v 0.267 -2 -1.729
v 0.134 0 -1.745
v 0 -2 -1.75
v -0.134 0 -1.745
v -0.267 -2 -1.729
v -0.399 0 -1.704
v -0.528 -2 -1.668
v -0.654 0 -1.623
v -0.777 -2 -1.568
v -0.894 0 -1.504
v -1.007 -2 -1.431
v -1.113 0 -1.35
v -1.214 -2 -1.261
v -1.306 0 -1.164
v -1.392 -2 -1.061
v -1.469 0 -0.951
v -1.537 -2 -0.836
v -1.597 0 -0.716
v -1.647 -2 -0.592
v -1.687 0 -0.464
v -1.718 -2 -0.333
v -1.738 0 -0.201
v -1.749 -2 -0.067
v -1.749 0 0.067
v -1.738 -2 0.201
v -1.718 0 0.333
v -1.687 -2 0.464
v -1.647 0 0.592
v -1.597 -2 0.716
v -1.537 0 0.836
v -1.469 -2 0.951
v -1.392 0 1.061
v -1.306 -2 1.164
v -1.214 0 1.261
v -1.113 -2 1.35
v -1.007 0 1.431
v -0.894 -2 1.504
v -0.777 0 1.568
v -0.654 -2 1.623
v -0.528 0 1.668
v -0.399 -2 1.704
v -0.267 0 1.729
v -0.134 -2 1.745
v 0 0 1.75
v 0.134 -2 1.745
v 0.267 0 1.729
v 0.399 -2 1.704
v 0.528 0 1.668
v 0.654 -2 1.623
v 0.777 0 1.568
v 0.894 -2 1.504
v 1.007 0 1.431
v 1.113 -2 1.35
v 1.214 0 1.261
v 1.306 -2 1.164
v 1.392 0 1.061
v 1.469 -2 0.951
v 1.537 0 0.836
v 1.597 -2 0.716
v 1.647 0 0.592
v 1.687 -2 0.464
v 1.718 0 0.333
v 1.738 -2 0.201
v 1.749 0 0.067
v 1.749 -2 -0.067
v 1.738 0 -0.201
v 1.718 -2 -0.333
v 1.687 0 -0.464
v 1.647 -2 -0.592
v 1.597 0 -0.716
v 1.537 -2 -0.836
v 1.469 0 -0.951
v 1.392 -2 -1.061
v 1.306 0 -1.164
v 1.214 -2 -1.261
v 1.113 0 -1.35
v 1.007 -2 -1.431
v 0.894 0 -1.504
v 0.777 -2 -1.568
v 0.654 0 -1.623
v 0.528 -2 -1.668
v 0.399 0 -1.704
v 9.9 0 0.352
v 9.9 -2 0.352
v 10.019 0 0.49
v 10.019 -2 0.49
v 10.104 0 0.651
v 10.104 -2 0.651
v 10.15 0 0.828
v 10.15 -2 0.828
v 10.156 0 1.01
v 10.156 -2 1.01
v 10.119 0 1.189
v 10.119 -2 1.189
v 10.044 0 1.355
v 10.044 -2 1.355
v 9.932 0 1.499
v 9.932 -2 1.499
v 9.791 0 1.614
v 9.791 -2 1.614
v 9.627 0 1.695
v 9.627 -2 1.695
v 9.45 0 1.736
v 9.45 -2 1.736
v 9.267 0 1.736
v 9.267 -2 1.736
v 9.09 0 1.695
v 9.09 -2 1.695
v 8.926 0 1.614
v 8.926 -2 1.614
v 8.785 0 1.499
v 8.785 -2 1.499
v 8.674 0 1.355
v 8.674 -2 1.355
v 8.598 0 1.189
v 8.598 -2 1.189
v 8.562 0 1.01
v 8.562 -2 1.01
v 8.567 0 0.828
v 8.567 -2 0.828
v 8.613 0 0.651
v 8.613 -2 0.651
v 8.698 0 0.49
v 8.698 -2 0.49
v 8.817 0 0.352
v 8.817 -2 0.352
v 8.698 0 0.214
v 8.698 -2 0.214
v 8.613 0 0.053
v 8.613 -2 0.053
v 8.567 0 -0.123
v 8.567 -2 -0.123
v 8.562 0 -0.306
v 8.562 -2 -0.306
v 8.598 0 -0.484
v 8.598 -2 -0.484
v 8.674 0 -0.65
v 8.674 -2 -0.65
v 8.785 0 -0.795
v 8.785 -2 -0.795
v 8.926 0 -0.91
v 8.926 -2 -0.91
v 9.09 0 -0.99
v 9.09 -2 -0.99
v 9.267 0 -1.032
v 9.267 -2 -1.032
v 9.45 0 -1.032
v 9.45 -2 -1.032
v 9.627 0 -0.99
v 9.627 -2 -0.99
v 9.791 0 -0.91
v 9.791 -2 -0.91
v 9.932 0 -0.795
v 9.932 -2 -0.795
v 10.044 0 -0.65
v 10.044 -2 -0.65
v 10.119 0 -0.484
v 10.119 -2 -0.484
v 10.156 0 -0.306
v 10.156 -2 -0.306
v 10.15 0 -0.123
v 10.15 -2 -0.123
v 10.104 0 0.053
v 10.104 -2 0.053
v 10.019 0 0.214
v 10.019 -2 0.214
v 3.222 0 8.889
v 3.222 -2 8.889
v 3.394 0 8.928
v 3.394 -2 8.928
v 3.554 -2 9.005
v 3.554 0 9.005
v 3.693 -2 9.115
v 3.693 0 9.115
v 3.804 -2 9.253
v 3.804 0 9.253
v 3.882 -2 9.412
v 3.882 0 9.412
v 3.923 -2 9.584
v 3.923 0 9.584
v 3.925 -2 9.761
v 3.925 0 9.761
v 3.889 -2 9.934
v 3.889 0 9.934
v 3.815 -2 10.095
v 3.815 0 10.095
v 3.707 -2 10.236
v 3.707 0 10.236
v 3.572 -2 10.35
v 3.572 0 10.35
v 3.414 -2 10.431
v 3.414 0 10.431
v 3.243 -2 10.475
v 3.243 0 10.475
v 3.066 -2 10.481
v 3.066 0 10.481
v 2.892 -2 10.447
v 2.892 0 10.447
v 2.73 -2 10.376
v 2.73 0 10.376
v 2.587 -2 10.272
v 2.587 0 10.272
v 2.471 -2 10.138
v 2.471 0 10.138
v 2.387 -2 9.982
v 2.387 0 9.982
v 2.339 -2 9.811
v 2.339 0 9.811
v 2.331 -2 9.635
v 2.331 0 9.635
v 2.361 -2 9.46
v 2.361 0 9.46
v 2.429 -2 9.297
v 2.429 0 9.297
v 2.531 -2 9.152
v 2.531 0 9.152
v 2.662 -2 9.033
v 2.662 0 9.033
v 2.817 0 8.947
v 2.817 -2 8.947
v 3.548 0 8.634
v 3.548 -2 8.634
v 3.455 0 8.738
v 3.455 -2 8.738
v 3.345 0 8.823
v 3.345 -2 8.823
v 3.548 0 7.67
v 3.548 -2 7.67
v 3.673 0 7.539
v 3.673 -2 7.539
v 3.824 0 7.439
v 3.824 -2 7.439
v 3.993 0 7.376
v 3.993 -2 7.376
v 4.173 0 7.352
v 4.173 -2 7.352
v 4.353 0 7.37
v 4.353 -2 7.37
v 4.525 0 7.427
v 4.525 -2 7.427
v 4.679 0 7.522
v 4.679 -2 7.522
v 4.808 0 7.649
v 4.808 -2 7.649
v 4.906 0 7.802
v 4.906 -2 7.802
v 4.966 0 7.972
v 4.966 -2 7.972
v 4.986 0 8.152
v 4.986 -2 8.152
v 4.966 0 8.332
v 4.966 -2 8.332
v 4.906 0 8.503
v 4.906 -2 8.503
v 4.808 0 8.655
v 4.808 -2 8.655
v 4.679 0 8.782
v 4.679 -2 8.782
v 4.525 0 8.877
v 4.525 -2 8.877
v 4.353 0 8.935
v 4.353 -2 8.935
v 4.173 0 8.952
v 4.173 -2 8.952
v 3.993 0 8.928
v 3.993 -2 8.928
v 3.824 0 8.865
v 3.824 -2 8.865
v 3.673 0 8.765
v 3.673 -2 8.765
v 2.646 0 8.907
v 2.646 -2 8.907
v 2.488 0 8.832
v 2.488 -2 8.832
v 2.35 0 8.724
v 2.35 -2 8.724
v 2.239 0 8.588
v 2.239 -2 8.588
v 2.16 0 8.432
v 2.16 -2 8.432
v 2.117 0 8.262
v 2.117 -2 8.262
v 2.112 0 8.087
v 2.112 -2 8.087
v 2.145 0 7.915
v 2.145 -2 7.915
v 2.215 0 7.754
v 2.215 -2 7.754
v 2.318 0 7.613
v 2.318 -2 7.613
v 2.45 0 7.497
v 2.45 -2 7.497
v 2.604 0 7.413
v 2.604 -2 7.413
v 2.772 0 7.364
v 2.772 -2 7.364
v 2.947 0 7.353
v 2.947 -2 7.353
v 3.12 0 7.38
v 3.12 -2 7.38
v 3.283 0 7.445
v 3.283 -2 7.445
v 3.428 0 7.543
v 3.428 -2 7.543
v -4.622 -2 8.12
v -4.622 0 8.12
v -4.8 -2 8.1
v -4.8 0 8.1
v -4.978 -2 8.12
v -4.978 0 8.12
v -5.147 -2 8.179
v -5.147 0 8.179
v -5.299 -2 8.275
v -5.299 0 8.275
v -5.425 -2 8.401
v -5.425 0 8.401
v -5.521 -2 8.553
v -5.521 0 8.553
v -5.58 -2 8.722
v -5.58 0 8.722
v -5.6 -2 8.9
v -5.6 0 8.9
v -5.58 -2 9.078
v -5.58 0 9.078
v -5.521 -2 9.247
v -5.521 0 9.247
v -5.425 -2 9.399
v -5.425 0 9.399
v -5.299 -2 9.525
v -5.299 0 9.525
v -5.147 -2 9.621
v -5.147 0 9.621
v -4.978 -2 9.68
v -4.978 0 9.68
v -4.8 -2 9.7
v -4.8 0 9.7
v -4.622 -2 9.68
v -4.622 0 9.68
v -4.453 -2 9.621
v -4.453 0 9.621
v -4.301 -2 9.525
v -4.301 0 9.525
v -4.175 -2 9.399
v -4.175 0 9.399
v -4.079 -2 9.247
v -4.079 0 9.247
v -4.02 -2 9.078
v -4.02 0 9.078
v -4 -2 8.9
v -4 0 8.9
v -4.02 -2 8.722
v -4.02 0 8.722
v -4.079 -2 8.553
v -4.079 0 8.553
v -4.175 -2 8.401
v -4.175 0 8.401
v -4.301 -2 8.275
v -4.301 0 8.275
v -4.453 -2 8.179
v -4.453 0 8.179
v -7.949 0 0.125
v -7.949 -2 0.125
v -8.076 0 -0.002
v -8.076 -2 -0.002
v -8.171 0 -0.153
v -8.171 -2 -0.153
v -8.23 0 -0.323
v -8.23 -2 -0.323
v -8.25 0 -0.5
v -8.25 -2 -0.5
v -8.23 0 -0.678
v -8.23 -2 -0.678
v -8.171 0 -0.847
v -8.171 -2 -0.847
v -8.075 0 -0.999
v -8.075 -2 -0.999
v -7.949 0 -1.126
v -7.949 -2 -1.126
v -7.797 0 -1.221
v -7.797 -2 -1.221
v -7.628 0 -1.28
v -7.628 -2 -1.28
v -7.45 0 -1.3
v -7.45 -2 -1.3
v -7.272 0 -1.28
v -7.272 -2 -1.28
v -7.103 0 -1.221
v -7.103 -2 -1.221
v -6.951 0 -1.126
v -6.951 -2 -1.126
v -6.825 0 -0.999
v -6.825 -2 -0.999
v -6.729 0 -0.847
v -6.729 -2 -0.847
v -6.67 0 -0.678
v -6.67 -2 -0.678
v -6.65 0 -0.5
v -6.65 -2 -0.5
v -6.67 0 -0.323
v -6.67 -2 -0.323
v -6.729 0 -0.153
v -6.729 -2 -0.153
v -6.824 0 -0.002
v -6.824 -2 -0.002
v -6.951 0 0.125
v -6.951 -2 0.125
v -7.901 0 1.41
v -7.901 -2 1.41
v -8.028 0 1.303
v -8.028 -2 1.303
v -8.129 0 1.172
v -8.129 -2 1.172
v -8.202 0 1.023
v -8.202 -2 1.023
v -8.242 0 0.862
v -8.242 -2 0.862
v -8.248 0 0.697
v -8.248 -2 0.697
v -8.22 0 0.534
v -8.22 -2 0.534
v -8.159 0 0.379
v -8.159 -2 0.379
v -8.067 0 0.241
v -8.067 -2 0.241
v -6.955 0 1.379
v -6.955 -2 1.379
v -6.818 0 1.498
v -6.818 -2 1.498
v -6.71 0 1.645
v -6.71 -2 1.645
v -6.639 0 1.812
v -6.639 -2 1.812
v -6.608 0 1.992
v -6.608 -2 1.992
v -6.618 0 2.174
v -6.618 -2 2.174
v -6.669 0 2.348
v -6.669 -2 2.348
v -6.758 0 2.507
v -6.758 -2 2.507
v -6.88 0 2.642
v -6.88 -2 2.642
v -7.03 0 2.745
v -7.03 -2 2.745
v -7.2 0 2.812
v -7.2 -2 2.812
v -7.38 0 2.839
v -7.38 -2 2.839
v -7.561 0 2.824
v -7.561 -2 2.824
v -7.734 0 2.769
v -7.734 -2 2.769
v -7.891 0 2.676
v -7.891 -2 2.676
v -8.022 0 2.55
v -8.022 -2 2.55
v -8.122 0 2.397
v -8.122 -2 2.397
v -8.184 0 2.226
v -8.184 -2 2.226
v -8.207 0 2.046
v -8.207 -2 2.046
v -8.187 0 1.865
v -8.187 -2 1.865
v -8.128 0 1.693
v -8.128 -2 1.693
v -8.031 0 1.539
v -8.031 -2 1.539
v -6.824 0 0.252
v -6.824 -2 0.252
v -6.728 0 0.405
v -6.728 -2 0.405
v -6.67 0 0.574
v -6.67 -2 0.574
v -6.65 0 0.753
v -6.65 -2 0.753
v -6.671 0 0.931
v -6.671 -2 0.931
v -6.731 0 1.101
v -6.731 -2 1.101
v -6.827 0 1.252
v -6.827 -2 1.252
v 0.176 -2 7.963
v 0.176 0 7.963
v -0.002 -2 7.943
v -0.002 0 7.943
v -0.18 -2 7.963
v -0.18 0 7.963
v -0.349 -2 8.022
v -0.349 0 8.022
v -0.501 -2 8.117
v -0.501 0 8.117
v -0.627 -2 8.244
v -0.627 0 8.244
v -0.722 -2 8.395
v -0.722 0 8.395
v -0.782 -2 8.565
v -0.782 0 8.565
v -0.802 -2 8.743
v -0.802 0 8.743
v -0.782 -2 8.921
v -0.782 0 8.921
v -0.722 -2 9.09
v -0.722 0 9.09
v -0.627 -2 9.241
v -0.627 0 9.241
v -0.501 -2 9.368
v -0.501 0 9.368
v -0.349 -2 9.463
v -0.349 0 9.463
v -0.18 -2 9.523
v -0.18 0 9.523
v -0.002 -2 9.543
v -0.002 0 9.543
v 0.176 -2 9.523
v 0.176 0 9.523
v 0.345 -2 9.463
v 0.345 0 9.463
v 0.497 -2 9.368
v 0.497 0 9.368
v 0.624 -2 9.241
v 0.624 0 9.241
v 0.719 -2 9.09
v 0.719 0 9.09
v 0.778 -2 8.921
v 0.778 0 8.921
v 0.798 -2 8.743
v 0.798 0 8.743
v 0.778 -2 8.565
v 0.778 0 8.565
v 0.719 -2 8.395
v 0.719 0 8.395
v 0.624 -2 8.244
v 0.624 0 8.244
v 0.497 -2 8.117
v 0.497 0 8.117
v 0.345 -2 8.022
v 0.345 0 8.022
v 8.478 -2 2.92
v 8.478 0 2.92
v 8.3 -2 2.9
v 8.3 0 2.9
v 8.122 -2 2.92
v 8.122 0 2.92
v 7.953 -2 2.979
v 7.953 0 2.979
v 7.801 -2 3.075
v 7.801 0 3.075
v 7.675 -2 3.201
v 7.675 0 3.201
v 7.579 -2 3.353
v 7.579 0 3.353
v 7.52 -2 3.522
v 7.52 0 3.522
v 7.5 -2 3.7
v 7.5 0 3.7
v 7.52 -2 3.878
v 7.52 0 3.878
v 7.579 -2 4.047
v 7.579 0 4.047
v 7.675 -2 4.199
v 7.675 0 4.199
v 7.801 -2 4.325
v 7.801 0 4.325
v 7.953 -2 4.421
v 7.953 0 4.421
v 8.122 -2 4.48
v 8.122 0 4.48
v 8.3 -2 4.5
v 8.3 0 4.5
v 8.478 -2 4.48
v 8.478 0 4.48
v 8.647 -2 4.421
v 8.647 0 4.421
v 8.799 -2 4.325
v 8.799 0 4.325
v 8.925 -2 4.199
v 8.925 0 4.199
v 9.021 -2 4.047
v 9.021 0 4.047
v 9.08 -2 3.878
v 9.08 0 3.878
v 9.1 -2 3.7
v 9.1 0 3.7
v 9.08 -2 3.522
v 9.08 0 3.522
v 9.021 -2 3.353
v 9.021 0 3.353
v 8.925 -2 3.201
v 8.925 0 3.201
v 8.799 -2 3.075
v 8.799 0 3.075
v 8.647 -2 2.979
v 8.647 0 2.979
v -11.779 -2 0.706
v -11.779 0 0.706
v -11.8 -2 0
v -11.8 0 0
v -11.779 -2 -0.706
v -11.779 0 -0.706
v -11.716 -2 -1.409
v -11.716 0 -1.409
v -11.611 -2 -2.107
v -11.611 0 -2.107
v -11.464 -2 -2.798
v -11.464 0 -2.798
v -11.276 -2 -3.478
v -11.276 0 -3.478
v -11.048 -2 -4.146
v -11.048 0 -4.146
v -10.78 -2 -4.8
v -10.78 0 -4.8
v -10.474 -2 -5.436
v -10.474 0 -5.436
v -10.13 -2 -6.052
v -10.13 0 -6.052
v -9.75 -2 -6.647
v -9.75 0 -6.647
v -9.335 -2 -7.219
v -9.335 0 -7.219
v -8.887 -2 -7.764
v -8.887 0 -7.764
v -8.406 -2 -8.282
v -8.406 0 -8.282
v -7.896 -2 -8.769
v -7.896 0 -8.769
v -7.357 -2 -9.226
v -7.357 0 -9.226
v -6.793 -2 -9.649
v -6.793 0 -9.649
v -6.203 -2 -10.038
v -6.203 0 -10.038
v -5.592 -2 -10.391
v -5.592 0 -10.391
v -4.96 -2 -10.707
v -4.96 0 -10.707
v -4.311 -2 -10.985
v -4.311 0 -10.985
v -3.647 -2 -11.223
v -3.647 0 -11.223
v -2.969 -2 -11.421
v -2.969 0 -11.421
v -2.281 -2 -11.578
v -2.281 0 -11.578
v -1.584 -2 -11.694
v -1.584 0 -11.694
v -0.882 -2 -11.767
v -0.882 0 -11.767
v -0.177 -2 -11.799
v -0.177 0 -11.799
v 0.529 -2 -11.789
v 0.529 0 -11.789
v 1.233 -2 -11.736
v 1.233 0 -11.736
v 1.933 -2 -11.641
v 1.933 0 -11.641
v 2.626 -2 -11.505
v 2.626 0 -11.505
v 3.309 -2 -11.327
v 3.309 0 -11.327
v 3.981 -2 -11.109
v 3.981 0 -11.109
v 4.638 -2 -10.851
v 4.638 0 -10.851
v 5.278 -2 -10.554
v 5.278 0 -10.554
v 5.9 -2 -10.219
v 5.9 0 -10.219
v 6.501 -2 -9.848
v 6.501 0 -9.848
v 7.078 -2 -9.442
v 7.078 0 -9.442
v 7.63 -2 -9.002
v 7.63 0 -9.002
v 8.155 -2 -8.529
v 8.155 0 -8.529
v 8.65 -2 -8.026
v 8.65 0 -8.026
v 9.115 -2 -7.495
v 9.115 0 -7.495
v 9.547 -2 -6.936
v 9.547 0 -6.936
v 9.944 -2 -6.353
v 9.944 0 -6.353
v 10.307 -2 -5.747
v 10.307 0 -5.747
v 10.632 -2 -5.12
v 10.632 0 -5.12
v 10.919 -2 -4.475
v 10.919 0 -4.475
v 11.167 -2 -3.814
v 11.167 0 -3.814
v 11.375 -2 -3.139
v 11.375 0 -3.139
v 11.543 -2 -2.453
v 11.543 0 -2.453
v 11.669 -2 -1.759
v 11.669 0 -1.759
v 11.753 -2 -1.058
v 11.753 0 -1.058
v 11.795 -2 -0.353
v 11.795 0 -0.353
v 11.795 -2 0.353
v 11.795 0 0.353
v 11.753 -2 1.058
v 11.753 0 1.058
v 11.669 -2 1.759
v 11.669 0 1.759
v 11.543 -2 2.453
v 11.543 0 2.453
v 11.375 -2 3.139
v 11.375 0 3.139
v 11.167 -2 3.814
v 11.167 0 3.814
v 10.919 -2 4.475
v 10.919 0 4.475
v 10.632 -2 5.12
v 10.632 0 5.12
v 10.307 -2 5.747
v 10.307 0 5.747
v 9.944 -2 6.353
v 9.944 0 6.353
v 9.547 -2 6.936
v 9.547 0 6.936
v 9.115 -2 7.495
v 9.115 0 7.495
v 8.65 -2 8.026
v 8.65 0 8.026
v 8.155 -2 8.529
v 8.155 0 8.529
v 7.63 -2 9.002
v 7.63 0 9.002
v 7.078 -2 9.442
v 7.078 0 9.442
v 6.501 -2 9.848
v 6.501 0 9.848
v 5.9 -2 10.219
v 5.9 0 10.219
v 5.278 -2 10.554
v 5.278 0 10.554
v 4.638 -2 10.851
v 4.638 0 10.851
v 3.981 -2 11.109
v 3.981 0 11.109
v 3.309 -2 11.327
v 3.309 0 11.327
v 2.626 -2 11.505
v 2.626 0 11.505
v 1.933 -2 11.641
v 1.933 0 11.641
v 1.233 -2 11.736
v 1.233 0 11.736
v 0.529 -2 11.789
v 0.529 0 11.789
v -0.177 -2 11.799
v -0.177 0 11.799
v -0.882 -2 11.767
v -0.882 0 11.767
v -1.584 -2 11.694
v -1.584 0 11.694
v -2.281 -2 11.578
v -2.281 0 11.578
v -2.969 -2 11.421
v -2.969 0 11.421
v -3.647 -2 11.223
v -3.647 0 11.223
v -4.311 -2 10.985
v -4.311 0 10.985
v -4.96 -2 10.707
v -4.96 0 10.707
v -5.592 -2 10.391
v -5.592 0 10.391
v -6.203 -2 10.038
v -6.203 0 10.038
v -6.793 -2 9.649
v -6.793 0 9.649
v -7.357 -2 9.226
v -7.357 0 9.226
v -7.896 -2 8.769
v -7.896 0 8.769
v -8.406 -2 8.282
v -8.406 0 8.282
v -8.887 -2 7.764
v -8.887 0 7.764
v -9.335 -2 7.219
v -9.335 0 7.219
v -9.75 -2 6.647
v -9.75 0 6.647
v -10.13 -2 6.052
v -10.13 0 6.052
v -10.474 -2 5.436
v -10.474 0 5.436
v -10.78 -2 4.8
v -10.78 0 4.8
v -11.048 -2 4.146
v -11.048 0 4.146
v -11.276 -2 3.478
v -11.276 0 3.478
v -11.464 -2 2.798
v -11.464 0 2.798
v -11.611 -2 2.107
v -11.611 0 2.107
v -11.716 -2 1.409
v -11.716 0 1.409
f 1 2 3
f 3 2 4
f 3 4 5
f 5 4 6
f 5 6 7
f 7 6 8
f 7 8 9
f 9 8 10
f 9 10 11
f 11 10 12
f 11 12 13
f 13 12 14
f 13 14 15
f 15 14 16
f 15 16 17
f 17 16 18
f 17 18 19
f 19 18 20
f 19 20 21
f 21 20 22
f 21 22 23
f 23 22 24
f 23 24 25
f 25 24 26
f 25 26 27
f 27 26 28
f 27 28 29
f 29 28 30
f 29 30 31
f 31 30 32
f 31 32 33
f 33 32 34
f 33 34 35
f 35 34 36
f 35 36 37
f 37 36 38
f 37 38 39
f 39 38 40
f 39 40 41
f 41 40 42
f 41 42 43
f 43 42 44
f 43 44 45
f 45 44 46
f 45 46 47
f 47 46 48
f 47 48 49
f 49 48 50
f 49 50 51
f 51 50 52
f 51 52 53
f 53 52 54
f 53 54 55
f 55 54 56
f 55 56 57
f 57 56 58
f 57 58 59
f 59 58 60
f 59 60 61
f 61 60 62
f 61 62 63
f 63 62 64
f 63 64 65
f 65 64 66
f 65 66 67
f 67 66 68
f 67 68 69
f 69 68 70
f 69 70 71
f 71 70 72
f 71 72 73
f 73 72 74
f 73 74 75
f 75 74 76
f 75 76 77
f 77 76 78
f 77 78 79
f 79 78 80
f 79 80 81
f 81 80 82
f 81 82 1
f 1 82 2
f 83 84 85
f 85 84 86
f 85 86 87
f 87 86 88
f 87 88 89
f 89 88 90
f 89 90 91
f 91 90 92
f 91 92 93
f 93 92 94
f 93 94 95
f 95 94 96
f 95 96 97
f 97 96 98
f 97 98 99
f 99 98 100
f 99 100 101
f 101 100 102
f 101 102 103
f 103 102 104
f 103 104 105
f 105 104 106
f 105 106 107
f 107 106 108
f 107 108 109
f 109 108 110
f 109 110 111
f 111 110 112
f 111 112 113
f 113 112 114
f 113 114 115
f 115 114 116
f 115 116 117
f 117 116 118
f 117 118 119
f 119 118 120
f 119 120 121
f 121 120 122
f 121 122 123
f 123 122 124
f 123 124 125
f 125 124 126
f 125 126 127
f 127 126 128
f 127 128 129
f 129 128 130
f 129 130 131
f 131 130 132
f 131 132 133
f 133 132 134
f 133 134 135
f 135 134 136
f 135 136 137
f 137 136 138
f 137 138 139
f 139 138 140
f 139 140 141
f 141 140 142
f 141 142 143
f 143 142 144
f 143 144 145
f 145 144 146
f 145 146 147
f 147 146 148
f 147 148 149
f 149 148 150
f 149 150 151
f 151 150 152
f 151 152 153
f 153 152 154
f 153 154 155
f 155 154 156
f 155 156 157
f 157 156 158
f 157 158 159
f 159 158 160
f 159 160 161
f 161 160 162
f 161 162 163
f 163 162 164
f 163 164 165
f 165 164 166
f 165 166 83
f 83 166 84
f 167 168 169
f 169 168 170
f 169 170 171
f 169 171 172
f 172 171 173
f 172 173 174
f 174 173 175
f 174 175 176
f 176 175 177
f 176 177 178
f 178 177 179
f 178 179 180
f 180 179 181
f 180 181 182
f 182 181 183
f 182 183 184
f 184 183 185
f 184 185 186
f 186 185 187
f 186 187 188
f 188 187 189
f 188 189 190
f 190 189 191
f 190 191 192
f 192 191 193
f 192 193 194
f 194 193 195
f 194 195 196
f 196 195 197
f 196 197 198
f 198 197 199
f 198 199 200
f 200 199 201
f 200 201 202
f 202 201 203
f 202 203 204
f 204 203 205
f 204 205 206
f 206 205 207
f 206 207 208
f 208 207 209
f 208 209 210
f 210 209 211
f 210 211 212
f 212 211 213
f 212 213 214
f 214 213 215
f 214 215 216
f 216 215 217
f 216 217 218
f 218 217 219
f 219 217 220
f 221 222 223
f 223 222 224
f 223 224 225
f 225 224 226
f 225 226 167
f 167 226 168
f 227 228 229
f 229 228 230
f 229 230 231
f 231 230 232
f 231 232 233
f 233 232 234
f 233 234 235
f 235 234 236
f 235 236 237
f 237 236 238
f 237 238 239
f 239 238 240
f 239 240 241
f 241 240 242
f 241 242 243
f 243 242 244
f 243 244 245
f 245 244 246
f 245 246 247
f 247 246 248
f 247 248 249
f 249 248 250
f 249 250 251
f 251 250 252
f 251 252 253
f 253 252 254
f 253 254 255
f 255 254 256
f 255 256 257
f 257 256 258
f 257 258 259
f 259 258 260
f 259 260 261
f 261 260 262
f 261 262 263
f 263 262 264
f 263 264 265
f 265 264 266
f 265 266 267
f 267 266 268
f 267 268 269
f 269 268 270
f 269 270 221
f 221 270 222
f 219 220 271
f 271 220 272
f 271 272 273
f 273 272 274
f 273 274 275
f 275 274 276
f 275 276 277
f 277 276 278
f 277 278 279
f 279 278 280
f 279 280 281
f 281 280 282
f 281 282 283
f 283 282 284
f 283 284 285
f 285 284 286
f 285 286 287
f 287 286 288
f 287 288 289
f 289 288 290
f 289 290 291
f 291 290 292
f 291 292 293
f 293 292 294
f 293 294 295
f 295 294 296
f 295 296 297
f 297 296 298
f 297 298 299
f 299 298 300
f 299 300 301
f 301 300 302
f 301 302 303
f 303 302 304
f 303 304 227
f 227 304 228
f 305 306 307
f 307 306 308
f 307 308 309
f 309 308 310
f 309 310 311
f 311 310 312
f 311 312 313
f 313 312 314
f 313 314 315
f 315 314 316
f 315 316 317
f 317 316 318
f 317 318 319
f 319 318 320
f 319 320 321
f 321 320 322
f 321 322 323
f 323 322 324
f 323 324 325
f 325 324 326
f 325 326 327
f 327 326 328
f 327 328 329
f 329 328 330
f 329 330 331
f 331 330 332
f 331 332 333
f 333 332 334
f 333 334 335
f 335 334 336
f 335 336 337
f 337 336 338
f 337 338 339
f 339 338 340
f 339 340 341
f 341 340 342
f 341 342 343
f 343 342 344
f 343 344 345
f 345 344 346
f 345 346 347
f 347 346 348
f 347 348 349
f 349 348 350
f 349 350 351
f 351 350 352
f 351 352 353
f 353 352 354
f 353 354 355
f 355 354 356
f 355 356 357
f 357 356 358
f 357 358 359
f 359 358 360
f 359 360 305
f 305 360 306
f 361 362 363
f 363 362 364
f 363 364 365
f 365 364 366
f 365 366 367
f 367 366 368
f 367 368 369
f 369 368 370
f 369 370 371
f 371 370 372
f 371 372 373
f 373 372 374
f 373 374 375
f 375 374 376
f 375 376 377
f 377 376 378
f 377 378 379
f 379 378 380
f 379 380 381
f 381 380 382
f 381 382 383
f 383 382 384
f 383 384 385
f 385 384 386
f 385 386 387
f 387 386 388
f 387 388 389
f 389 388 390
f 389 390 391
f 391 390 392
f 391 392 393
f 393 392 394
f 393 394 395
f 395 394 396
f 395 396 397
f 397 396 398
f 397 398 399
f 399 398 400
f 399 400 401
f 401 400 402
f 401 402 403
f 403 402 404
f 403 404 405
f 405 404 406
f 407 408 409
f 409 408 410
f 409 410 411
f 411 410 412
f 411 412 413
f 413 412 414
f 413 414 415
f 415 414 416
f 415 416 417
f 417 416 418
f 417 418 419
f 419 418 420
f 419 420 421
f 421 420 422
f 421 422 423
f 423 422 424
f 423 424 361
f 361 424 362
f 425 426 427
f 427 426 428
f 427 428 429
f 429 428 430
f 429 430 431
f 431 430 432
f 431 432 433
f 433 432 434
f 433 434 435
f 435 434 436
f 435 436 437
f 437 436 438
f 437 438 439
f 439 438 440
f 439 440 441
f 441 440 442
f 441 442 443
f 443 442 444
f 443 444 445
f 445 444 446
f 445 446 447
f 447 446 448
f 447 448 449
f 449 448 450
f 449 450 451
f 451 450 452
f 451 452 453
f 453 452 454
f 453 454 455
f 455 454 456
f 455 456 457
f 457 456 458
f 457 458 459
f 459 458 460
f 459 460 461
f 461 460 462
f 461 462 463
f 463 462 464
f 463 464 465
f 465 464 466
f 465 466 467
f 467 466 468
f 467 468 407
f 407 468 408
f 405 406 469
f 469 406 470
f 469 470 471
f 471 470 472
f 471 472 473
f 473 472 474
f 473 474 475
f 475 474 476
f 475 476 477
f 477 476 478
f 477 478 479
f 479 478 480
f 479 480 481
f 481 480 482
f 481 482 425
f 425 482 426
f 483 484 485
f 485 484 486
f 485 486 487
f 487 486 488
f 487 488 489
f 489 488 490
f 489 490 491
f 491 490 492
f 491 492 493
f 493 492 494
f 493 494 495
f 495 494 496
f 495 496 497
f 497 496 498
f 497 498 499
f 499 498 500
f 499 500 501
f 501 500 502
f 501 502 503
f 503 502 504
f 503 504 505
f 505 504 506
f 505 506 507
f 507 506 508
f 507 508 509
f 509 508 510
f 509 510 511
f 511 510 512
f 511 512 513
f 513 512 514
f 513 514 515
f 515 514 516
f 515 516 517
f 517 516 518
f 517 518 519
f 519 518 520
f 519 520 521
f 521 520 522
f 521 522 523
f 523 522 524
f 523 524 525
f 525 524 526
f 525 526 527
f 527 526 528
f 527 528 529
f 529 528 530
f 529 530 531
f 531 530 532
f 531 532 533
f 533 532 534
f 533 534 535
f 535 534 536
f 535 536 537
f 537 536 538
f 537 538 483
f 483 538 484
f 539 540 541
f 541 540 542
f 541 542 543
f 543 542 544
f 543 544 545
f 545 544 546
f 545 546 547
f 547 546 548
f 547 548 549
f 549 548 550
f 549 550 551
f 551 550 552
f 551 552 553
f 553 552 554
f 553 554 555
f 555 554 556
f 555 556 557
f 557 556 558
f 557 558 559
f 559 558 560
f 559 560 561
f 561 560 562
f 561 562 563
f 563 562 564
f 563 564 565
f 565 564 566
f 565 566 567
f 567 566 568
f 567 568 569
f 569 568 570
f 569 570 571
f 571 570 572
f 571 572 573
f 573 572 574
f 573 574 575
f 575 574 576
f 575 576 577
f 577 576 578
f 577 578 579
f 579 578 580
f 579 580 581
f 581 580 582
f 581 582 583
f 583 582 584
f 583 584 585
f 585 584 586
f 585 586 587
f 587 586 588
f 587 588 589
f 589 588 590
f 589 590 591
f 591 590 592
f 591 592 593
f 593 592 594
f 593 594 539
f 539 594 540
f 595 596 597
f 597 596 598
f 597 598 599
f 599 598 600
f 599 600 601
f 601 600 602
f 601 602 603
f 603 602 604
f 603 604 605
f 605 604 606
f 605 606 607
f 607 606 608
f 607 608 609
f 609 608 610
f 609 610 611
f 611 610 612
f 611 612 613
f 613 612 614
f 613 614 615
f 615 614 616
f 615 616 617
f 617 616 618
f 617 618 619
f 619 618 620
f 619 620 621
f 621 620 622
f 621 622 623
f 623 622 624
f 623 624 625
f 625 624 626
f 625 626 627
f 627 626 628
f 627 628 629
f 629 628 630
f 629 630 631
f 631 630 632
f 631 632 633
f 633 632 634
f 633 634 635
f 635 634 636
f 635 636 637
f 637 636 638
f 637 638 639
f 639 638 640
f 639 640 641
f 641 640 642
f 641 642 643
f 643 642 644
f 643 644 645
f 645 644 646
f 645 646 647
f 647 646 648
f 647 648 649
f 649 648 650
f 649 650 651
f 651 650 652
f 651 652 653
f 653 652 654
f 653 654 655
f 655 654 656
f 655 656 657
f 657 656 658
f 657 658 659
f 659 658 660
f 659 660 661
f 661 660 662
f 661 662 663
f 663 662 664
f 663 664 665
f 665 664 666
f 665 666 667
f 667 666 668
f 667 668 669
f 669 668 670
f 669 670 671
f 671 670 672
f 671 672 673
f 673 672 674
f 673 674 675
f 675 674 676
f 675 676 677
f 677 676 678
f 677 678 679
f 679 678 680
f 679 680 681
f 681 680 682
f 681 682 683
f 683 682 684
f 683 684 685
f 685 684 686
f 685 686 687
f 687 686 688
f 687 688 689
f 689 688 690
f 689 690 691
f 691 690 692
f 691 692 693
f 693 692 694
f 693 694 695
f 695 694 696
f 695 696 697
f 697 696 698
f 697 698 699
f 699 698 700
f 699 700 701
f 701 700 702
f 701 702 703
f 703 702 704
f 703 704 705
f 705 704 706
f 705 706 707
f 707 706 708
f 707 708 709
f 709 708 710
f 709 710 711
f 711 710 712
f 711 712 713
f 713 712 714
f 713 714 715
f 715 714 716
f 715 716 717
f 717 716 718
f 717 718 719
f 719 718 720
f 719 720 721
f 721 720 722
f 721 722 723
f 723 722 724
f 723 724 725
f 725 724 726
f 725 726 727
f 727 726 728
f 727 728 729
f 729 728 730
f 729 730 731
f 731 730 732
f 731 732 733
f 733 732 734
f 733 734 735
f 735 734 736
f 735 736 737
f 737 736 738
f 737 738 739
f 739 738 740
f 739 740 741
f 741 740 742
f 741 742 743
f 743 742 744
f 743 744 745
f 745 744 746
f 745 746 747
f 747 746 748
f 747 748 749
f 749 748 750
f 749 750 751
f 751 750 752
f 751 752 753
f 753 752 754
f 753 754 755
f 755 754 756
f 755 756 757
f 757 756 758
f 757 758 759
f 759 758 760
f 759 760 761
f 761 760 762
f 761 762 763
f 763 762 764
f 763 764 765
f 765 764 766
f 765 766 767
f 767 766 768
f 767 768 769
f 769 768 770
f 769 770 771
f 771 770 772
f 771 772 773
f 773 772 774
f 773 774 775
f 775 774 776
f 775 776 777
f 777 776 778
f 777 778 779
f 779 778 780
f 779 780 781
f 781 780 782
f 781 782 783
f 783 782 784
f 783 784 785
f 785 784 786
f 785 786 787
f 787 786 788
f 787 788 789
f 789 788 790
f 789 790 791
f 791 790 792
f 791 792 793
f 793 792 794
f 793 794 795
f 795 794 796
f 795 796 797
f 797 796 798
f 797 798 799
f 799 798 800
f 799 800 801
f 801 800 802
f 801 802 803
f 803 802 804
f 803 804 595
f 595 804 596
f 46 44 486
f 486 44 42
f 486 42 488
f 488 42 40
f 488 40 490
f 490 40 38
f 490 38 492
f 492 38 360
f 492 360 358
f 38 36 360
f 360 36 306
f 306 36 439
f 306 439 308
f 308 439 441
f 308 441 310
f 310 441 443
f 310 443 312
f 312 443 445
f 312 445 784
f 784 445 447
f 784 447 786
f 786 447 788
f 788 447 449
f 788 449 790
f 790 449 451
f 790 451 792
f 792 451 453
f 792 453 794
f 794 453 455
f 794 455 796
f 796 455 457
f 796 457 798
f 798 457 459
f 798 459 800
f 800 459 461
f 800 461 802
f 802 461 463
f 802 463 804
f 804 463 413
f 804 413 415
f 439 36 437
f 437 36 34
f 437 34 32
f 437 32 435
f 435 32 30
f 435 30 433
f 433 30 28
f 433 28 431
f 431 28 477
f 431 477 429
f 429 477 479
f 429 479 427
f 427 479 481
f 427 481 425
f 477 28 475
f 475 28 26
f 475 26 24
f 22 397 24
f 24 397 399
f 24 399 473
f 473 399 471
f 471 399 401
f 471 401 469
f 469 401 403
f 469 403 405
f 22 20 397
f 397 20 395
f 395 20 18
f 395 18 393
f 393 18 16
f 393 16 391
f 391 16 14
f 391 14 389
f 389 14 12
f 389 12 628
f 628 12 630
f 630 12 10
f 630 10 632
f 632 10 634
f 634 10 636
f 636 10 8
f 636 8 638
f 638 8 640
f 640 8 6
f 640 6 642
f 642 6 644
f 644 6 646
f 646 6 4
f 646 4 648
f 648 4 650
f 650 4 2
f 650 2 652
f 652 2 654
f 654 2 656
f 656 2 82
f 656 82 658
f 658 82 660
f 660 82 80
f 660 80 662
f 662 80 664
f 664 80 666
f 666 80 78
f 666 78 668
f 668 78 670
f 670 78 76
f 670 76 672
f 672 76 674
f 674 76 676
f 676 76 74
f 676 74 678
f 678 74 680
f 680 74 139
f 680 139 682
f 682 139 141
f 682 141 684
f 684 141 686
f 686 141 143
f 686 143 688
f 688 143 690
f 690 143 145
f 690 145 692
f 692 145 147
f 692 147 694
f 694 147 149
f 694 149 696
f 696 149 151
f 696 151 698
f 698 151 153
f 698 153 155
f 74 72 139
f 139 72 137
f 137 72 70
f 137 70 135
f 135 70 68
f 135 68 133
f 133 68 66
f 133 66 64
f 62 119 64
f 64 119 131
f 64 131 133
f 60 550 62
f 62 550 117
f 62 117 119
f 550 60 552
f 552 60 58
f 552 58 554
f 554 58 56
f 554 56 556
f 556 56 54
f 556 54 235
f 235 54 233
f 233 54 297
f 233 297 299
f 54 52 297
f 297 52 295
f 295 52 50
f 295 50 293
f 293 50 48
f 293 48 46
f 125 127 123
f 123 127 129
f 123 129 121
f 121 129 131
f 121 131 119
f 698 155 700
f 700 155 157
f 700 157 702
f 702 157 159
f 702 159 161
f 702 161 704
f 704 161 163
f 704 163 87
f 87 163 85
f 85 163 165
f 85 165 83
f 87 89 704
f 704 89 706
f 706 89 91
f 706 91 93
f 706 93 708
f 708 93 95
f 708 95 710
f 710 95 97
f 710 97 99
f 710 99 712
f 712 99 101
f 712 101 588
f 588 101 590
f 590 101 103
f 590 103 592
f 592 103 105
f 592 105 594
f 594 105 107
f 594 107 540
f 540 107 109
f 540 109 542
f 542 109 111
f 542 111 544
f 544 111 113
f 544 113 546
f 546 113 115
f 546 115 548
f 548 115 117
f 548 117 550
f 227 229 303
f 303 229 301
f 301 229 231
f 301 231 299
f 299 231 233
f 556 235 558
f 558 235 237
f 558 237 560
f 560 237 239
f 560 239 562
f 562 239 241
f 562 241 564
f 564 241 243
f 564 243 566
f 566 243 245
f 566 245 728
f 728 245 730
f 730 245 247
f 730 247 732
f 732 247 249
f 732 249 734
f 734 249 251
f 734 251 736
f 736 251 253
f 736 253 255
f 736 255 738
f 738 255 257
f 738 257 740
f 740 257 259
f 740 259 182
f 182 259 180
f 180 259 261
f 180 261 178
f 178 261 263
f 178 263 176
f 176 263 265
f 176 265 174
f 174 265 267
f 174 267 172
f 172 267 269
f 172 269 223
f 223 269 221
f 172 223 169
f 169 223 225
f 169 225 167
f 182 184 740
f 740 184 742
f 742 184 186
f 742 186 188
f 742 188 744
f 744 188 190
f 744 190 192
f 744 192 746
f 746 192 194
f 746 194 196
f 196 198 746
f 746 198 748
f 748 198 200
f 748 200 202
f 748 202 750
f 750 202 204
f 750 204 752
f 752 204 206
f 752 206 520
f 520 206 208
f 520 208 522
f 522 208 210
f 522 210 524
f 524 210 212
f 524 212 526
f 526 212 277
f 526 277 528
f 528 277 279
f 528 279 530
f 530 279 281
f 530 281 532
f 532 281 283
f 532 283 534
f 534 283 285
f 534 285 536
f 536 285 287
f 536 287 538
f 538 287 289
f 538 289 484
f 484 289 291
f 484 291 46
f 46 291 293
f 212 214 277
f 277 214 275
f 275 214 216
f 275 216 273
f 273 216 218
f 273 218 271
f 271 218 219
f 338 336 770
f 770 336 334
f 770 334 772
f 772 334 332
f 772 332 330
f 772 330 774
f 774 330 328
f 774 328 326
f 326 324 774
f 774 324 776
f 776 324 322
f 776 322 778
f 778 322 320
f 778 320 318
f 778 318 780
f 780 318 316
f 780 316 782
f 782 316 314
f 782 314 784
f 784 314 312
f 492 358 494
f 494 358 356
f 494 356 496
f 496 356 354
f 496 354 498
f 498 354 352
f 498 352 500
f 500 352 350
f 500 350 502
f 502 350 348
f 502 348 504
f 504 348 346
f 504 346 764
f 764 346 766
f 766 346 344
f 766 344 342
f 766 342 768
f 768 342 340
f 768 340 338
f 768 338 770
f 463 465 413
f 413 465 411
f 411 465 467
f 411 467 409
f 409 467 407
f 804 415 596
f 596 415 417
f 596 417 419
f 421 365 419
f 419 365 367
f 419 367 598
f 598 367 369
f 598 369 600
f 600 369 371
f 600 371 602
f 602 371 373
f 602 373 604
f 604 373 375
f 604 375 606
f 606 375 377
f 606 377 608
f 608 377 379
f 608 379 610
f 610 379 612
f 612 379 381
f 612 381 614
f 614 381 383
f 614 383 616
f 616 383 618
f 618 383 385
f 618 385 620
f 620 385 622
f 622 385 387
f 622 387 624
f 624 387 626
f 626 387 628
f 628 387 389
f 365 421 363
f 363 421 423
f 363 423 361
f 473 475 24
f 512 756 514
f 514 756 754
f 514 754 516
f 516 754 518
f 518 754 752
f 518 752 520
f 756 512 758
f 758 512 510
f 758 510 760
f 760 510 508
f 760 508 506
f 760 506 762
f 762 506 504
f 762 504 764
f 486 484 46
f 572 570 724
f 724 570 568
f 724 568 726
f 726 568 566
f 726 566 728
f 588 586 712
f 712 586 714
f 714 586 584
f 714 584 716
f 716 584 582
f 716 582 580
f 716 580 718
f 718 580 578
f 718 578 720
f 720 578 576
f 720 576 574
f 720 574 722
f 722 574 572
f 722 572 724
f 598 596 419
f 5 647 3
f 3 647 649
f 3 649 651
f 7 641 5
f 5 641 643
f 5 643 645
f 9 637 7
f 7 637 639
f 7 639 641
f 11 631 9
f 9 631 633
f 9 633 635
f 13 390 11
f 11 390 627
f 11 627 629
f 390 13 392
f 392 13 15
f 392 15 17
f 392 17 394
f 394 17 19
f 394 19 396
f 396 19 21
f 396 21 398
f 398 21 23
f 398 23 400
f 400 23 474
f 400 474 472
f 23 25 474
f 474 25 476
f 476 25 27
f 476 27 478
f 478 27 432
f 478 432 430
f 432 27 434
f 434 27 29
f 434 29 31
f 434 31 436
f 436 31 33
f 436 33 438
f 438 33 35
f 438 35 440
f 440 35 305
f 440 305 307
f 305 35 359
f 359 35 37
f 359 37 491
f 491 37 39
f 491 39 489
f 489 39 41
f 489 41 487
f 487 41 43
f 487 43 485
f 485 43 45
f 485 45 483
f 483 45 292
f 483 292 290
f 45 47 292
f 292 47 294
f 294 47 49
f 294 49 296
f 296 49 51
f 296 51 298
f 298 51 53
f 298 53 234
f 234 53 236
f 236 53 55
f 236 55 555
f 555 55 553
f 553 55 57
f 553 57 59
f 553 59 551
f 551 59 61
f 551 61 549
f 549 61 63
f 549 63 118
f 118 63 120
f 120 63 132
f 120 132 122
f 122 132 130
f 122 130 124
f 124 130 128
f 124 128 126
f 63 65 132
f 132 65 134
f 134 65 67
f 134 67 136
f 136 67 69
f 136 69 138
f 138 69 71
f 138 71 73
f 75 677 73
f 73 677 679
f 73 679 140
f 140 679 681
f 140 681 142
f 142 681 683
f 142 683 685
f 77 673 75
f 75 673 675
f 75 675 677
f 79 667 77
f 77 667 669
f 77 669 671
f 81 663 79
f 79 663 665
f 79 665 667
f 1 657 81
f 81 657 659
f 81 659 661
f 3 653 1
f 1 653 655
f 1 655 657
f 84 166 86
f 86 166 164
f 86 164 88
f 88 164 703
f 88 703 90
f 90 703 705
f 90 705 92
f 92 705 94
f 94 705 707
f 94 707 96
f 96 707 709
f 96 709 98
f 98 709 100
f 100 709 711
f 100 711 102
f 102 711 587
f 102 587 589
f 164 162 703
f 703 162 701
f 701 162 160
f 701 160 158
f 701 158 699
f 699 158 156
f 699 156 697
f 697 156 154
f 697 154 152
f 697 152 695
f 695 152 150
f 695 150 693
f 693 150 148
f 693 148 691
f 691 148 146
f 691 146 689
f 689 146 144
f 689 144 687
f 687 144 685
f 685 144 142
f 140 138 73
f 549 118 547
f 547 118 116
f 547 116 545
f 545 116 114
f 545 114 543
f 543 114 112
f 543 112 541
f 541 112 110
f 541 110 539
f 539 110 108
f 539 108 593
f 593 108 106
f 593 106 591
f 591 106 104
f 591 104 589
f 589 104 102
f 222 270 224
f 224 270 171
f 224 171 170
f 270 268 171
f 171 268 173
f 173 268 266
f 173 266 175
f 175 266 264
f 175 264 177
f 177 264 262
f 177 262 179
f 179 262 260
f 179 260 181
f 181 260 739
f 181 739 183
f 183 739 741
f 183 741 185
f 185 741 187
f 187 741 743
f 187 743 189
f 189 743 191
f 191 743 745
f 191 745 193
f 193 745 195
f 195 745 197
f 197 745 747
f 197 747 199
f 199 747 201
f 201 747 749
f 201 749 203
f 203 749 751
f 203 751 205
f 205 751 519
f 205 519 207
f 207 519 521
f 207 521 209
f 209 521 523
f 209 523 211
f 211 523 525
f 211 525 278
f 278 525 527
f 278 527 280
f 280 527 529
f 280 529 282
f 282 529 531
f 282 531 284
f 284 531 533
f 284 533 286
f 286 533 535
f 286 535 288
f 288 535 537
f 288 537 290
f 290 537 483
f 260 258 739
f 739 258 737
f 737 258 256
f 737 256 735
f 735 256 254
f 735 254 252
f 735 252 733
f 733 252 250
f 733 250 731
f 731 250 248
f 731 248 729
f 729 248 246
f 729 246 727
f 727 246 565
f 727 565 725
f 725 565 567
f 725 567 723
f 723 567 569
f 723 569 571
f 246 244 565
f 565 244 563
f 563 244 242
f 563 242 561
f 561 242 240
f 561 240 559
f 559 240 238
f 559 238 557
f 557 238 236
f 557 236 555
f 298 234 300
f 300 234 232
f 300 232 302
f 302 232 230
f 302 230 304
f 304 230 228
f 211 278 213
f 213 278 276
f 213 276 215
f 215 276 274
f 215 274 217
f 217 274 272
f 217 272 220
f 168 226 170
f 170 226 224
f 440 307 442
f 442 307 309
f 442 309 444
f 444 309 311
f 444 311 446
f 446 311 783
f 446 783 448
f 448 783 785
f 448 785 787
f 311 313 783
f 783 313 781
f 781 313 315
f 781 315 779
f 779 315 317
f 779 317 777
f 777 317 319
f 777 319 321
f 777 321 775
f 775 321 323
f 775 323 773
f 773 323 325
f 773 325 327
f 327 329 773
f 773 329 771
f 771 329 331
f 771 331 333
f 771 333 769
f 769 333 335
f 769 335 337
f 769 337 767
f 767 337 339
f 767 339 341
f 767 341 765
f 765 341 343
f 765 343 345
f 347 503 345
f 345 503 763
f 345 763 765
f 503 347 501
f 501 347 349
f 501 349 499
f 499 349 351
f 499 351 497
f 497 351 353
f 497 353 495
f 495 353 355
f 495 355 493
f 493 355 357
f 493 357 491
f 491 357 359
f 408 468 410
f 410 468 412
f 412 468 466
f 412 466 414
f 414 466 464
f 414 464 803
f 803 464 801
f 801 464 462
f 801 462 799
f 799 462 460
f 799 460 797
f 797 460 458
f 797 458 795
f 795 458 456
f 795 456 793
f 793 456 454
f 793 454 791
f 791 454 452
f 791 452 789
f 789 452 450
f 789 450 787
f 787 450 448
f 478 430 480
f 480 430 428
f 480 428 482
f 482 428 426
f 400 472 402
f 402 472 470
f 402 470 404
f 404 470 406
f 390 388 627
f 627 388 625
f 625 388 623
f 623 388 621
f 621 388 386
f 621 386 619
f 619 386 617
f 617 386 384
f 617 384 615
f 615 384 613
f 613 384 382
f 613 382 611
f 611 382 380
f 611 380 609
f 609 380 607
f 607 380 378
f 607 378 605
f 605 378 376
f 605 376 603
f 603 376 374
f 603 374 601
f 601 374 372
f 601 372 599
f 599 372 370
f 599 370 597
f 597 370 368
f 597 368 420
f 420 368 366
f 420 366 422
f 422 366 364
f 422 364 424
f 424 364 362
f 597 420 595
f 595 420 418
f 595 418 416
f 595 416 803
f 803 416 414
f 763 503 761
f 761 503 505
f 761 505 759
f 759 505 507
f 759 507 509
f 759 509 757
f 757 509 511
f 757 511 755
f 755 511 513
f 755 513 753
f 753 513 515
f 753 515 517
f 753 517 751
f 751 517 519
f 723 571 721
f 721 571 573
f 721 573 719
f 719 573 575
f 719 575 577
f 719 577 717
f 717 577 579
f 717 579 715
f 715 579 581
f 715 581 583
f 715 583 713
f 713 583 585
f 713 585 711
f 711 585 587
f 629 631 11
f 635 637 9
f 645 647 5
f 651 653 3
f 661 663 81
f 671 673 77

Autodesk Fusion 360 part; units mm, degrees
sketch "Sketch1" plane through (0, 0, 0) normal (0, 1, 0) x (1, 0, 0)
  circle A0 centre (0, 0) radius 13 construction
  circle A1 centre (0, 0) radius 11.8004
  point P0 (-7.45, 0.5)
  point P1 (-7.45, -0.75)
  point P2 (-7.4065, -2.039)
  point P3 (9.3586, 0.2369)
  point P4 (9.3586, -0.9412)
  point P5 (8.3, -3.7)
  point P6 (-4.8, -8.9)
  point P7 (-0.0017, -8.7426)
  point P8 (4.1864, -8.1521)
  point P9 (2.9094, -8.1521)
  point P10 (3.1291, -9.6832)
  dimension "d1" = 26
extrude "Extrude1" add sketch "Sketch1" against normal blind 2
hole "Hole1" at (-7.45, 0, -0.5) at (-7.45, 0, 0.75) at (-7.4065, 0, 2.039) at (-4.8, 0, 8.9) at (-0.0017, 0, 8.7426) at (2.9094, 0, 8.1521) at (3.1291, 0, 9.6832) at (4.1864, 0, 8.1521) at (8.3, 0, 3.7) at (9.3586, 0, 0.9412) at (9.3586, 0, -0.2369) direction (0, -1, 0) diameter 1.6 depth 5.5 tip angle 118
hole "Hole2" at (0, 0, 0) direction (0, -1, 0) diameter 3.5 depth 5.5 tip angle 118
